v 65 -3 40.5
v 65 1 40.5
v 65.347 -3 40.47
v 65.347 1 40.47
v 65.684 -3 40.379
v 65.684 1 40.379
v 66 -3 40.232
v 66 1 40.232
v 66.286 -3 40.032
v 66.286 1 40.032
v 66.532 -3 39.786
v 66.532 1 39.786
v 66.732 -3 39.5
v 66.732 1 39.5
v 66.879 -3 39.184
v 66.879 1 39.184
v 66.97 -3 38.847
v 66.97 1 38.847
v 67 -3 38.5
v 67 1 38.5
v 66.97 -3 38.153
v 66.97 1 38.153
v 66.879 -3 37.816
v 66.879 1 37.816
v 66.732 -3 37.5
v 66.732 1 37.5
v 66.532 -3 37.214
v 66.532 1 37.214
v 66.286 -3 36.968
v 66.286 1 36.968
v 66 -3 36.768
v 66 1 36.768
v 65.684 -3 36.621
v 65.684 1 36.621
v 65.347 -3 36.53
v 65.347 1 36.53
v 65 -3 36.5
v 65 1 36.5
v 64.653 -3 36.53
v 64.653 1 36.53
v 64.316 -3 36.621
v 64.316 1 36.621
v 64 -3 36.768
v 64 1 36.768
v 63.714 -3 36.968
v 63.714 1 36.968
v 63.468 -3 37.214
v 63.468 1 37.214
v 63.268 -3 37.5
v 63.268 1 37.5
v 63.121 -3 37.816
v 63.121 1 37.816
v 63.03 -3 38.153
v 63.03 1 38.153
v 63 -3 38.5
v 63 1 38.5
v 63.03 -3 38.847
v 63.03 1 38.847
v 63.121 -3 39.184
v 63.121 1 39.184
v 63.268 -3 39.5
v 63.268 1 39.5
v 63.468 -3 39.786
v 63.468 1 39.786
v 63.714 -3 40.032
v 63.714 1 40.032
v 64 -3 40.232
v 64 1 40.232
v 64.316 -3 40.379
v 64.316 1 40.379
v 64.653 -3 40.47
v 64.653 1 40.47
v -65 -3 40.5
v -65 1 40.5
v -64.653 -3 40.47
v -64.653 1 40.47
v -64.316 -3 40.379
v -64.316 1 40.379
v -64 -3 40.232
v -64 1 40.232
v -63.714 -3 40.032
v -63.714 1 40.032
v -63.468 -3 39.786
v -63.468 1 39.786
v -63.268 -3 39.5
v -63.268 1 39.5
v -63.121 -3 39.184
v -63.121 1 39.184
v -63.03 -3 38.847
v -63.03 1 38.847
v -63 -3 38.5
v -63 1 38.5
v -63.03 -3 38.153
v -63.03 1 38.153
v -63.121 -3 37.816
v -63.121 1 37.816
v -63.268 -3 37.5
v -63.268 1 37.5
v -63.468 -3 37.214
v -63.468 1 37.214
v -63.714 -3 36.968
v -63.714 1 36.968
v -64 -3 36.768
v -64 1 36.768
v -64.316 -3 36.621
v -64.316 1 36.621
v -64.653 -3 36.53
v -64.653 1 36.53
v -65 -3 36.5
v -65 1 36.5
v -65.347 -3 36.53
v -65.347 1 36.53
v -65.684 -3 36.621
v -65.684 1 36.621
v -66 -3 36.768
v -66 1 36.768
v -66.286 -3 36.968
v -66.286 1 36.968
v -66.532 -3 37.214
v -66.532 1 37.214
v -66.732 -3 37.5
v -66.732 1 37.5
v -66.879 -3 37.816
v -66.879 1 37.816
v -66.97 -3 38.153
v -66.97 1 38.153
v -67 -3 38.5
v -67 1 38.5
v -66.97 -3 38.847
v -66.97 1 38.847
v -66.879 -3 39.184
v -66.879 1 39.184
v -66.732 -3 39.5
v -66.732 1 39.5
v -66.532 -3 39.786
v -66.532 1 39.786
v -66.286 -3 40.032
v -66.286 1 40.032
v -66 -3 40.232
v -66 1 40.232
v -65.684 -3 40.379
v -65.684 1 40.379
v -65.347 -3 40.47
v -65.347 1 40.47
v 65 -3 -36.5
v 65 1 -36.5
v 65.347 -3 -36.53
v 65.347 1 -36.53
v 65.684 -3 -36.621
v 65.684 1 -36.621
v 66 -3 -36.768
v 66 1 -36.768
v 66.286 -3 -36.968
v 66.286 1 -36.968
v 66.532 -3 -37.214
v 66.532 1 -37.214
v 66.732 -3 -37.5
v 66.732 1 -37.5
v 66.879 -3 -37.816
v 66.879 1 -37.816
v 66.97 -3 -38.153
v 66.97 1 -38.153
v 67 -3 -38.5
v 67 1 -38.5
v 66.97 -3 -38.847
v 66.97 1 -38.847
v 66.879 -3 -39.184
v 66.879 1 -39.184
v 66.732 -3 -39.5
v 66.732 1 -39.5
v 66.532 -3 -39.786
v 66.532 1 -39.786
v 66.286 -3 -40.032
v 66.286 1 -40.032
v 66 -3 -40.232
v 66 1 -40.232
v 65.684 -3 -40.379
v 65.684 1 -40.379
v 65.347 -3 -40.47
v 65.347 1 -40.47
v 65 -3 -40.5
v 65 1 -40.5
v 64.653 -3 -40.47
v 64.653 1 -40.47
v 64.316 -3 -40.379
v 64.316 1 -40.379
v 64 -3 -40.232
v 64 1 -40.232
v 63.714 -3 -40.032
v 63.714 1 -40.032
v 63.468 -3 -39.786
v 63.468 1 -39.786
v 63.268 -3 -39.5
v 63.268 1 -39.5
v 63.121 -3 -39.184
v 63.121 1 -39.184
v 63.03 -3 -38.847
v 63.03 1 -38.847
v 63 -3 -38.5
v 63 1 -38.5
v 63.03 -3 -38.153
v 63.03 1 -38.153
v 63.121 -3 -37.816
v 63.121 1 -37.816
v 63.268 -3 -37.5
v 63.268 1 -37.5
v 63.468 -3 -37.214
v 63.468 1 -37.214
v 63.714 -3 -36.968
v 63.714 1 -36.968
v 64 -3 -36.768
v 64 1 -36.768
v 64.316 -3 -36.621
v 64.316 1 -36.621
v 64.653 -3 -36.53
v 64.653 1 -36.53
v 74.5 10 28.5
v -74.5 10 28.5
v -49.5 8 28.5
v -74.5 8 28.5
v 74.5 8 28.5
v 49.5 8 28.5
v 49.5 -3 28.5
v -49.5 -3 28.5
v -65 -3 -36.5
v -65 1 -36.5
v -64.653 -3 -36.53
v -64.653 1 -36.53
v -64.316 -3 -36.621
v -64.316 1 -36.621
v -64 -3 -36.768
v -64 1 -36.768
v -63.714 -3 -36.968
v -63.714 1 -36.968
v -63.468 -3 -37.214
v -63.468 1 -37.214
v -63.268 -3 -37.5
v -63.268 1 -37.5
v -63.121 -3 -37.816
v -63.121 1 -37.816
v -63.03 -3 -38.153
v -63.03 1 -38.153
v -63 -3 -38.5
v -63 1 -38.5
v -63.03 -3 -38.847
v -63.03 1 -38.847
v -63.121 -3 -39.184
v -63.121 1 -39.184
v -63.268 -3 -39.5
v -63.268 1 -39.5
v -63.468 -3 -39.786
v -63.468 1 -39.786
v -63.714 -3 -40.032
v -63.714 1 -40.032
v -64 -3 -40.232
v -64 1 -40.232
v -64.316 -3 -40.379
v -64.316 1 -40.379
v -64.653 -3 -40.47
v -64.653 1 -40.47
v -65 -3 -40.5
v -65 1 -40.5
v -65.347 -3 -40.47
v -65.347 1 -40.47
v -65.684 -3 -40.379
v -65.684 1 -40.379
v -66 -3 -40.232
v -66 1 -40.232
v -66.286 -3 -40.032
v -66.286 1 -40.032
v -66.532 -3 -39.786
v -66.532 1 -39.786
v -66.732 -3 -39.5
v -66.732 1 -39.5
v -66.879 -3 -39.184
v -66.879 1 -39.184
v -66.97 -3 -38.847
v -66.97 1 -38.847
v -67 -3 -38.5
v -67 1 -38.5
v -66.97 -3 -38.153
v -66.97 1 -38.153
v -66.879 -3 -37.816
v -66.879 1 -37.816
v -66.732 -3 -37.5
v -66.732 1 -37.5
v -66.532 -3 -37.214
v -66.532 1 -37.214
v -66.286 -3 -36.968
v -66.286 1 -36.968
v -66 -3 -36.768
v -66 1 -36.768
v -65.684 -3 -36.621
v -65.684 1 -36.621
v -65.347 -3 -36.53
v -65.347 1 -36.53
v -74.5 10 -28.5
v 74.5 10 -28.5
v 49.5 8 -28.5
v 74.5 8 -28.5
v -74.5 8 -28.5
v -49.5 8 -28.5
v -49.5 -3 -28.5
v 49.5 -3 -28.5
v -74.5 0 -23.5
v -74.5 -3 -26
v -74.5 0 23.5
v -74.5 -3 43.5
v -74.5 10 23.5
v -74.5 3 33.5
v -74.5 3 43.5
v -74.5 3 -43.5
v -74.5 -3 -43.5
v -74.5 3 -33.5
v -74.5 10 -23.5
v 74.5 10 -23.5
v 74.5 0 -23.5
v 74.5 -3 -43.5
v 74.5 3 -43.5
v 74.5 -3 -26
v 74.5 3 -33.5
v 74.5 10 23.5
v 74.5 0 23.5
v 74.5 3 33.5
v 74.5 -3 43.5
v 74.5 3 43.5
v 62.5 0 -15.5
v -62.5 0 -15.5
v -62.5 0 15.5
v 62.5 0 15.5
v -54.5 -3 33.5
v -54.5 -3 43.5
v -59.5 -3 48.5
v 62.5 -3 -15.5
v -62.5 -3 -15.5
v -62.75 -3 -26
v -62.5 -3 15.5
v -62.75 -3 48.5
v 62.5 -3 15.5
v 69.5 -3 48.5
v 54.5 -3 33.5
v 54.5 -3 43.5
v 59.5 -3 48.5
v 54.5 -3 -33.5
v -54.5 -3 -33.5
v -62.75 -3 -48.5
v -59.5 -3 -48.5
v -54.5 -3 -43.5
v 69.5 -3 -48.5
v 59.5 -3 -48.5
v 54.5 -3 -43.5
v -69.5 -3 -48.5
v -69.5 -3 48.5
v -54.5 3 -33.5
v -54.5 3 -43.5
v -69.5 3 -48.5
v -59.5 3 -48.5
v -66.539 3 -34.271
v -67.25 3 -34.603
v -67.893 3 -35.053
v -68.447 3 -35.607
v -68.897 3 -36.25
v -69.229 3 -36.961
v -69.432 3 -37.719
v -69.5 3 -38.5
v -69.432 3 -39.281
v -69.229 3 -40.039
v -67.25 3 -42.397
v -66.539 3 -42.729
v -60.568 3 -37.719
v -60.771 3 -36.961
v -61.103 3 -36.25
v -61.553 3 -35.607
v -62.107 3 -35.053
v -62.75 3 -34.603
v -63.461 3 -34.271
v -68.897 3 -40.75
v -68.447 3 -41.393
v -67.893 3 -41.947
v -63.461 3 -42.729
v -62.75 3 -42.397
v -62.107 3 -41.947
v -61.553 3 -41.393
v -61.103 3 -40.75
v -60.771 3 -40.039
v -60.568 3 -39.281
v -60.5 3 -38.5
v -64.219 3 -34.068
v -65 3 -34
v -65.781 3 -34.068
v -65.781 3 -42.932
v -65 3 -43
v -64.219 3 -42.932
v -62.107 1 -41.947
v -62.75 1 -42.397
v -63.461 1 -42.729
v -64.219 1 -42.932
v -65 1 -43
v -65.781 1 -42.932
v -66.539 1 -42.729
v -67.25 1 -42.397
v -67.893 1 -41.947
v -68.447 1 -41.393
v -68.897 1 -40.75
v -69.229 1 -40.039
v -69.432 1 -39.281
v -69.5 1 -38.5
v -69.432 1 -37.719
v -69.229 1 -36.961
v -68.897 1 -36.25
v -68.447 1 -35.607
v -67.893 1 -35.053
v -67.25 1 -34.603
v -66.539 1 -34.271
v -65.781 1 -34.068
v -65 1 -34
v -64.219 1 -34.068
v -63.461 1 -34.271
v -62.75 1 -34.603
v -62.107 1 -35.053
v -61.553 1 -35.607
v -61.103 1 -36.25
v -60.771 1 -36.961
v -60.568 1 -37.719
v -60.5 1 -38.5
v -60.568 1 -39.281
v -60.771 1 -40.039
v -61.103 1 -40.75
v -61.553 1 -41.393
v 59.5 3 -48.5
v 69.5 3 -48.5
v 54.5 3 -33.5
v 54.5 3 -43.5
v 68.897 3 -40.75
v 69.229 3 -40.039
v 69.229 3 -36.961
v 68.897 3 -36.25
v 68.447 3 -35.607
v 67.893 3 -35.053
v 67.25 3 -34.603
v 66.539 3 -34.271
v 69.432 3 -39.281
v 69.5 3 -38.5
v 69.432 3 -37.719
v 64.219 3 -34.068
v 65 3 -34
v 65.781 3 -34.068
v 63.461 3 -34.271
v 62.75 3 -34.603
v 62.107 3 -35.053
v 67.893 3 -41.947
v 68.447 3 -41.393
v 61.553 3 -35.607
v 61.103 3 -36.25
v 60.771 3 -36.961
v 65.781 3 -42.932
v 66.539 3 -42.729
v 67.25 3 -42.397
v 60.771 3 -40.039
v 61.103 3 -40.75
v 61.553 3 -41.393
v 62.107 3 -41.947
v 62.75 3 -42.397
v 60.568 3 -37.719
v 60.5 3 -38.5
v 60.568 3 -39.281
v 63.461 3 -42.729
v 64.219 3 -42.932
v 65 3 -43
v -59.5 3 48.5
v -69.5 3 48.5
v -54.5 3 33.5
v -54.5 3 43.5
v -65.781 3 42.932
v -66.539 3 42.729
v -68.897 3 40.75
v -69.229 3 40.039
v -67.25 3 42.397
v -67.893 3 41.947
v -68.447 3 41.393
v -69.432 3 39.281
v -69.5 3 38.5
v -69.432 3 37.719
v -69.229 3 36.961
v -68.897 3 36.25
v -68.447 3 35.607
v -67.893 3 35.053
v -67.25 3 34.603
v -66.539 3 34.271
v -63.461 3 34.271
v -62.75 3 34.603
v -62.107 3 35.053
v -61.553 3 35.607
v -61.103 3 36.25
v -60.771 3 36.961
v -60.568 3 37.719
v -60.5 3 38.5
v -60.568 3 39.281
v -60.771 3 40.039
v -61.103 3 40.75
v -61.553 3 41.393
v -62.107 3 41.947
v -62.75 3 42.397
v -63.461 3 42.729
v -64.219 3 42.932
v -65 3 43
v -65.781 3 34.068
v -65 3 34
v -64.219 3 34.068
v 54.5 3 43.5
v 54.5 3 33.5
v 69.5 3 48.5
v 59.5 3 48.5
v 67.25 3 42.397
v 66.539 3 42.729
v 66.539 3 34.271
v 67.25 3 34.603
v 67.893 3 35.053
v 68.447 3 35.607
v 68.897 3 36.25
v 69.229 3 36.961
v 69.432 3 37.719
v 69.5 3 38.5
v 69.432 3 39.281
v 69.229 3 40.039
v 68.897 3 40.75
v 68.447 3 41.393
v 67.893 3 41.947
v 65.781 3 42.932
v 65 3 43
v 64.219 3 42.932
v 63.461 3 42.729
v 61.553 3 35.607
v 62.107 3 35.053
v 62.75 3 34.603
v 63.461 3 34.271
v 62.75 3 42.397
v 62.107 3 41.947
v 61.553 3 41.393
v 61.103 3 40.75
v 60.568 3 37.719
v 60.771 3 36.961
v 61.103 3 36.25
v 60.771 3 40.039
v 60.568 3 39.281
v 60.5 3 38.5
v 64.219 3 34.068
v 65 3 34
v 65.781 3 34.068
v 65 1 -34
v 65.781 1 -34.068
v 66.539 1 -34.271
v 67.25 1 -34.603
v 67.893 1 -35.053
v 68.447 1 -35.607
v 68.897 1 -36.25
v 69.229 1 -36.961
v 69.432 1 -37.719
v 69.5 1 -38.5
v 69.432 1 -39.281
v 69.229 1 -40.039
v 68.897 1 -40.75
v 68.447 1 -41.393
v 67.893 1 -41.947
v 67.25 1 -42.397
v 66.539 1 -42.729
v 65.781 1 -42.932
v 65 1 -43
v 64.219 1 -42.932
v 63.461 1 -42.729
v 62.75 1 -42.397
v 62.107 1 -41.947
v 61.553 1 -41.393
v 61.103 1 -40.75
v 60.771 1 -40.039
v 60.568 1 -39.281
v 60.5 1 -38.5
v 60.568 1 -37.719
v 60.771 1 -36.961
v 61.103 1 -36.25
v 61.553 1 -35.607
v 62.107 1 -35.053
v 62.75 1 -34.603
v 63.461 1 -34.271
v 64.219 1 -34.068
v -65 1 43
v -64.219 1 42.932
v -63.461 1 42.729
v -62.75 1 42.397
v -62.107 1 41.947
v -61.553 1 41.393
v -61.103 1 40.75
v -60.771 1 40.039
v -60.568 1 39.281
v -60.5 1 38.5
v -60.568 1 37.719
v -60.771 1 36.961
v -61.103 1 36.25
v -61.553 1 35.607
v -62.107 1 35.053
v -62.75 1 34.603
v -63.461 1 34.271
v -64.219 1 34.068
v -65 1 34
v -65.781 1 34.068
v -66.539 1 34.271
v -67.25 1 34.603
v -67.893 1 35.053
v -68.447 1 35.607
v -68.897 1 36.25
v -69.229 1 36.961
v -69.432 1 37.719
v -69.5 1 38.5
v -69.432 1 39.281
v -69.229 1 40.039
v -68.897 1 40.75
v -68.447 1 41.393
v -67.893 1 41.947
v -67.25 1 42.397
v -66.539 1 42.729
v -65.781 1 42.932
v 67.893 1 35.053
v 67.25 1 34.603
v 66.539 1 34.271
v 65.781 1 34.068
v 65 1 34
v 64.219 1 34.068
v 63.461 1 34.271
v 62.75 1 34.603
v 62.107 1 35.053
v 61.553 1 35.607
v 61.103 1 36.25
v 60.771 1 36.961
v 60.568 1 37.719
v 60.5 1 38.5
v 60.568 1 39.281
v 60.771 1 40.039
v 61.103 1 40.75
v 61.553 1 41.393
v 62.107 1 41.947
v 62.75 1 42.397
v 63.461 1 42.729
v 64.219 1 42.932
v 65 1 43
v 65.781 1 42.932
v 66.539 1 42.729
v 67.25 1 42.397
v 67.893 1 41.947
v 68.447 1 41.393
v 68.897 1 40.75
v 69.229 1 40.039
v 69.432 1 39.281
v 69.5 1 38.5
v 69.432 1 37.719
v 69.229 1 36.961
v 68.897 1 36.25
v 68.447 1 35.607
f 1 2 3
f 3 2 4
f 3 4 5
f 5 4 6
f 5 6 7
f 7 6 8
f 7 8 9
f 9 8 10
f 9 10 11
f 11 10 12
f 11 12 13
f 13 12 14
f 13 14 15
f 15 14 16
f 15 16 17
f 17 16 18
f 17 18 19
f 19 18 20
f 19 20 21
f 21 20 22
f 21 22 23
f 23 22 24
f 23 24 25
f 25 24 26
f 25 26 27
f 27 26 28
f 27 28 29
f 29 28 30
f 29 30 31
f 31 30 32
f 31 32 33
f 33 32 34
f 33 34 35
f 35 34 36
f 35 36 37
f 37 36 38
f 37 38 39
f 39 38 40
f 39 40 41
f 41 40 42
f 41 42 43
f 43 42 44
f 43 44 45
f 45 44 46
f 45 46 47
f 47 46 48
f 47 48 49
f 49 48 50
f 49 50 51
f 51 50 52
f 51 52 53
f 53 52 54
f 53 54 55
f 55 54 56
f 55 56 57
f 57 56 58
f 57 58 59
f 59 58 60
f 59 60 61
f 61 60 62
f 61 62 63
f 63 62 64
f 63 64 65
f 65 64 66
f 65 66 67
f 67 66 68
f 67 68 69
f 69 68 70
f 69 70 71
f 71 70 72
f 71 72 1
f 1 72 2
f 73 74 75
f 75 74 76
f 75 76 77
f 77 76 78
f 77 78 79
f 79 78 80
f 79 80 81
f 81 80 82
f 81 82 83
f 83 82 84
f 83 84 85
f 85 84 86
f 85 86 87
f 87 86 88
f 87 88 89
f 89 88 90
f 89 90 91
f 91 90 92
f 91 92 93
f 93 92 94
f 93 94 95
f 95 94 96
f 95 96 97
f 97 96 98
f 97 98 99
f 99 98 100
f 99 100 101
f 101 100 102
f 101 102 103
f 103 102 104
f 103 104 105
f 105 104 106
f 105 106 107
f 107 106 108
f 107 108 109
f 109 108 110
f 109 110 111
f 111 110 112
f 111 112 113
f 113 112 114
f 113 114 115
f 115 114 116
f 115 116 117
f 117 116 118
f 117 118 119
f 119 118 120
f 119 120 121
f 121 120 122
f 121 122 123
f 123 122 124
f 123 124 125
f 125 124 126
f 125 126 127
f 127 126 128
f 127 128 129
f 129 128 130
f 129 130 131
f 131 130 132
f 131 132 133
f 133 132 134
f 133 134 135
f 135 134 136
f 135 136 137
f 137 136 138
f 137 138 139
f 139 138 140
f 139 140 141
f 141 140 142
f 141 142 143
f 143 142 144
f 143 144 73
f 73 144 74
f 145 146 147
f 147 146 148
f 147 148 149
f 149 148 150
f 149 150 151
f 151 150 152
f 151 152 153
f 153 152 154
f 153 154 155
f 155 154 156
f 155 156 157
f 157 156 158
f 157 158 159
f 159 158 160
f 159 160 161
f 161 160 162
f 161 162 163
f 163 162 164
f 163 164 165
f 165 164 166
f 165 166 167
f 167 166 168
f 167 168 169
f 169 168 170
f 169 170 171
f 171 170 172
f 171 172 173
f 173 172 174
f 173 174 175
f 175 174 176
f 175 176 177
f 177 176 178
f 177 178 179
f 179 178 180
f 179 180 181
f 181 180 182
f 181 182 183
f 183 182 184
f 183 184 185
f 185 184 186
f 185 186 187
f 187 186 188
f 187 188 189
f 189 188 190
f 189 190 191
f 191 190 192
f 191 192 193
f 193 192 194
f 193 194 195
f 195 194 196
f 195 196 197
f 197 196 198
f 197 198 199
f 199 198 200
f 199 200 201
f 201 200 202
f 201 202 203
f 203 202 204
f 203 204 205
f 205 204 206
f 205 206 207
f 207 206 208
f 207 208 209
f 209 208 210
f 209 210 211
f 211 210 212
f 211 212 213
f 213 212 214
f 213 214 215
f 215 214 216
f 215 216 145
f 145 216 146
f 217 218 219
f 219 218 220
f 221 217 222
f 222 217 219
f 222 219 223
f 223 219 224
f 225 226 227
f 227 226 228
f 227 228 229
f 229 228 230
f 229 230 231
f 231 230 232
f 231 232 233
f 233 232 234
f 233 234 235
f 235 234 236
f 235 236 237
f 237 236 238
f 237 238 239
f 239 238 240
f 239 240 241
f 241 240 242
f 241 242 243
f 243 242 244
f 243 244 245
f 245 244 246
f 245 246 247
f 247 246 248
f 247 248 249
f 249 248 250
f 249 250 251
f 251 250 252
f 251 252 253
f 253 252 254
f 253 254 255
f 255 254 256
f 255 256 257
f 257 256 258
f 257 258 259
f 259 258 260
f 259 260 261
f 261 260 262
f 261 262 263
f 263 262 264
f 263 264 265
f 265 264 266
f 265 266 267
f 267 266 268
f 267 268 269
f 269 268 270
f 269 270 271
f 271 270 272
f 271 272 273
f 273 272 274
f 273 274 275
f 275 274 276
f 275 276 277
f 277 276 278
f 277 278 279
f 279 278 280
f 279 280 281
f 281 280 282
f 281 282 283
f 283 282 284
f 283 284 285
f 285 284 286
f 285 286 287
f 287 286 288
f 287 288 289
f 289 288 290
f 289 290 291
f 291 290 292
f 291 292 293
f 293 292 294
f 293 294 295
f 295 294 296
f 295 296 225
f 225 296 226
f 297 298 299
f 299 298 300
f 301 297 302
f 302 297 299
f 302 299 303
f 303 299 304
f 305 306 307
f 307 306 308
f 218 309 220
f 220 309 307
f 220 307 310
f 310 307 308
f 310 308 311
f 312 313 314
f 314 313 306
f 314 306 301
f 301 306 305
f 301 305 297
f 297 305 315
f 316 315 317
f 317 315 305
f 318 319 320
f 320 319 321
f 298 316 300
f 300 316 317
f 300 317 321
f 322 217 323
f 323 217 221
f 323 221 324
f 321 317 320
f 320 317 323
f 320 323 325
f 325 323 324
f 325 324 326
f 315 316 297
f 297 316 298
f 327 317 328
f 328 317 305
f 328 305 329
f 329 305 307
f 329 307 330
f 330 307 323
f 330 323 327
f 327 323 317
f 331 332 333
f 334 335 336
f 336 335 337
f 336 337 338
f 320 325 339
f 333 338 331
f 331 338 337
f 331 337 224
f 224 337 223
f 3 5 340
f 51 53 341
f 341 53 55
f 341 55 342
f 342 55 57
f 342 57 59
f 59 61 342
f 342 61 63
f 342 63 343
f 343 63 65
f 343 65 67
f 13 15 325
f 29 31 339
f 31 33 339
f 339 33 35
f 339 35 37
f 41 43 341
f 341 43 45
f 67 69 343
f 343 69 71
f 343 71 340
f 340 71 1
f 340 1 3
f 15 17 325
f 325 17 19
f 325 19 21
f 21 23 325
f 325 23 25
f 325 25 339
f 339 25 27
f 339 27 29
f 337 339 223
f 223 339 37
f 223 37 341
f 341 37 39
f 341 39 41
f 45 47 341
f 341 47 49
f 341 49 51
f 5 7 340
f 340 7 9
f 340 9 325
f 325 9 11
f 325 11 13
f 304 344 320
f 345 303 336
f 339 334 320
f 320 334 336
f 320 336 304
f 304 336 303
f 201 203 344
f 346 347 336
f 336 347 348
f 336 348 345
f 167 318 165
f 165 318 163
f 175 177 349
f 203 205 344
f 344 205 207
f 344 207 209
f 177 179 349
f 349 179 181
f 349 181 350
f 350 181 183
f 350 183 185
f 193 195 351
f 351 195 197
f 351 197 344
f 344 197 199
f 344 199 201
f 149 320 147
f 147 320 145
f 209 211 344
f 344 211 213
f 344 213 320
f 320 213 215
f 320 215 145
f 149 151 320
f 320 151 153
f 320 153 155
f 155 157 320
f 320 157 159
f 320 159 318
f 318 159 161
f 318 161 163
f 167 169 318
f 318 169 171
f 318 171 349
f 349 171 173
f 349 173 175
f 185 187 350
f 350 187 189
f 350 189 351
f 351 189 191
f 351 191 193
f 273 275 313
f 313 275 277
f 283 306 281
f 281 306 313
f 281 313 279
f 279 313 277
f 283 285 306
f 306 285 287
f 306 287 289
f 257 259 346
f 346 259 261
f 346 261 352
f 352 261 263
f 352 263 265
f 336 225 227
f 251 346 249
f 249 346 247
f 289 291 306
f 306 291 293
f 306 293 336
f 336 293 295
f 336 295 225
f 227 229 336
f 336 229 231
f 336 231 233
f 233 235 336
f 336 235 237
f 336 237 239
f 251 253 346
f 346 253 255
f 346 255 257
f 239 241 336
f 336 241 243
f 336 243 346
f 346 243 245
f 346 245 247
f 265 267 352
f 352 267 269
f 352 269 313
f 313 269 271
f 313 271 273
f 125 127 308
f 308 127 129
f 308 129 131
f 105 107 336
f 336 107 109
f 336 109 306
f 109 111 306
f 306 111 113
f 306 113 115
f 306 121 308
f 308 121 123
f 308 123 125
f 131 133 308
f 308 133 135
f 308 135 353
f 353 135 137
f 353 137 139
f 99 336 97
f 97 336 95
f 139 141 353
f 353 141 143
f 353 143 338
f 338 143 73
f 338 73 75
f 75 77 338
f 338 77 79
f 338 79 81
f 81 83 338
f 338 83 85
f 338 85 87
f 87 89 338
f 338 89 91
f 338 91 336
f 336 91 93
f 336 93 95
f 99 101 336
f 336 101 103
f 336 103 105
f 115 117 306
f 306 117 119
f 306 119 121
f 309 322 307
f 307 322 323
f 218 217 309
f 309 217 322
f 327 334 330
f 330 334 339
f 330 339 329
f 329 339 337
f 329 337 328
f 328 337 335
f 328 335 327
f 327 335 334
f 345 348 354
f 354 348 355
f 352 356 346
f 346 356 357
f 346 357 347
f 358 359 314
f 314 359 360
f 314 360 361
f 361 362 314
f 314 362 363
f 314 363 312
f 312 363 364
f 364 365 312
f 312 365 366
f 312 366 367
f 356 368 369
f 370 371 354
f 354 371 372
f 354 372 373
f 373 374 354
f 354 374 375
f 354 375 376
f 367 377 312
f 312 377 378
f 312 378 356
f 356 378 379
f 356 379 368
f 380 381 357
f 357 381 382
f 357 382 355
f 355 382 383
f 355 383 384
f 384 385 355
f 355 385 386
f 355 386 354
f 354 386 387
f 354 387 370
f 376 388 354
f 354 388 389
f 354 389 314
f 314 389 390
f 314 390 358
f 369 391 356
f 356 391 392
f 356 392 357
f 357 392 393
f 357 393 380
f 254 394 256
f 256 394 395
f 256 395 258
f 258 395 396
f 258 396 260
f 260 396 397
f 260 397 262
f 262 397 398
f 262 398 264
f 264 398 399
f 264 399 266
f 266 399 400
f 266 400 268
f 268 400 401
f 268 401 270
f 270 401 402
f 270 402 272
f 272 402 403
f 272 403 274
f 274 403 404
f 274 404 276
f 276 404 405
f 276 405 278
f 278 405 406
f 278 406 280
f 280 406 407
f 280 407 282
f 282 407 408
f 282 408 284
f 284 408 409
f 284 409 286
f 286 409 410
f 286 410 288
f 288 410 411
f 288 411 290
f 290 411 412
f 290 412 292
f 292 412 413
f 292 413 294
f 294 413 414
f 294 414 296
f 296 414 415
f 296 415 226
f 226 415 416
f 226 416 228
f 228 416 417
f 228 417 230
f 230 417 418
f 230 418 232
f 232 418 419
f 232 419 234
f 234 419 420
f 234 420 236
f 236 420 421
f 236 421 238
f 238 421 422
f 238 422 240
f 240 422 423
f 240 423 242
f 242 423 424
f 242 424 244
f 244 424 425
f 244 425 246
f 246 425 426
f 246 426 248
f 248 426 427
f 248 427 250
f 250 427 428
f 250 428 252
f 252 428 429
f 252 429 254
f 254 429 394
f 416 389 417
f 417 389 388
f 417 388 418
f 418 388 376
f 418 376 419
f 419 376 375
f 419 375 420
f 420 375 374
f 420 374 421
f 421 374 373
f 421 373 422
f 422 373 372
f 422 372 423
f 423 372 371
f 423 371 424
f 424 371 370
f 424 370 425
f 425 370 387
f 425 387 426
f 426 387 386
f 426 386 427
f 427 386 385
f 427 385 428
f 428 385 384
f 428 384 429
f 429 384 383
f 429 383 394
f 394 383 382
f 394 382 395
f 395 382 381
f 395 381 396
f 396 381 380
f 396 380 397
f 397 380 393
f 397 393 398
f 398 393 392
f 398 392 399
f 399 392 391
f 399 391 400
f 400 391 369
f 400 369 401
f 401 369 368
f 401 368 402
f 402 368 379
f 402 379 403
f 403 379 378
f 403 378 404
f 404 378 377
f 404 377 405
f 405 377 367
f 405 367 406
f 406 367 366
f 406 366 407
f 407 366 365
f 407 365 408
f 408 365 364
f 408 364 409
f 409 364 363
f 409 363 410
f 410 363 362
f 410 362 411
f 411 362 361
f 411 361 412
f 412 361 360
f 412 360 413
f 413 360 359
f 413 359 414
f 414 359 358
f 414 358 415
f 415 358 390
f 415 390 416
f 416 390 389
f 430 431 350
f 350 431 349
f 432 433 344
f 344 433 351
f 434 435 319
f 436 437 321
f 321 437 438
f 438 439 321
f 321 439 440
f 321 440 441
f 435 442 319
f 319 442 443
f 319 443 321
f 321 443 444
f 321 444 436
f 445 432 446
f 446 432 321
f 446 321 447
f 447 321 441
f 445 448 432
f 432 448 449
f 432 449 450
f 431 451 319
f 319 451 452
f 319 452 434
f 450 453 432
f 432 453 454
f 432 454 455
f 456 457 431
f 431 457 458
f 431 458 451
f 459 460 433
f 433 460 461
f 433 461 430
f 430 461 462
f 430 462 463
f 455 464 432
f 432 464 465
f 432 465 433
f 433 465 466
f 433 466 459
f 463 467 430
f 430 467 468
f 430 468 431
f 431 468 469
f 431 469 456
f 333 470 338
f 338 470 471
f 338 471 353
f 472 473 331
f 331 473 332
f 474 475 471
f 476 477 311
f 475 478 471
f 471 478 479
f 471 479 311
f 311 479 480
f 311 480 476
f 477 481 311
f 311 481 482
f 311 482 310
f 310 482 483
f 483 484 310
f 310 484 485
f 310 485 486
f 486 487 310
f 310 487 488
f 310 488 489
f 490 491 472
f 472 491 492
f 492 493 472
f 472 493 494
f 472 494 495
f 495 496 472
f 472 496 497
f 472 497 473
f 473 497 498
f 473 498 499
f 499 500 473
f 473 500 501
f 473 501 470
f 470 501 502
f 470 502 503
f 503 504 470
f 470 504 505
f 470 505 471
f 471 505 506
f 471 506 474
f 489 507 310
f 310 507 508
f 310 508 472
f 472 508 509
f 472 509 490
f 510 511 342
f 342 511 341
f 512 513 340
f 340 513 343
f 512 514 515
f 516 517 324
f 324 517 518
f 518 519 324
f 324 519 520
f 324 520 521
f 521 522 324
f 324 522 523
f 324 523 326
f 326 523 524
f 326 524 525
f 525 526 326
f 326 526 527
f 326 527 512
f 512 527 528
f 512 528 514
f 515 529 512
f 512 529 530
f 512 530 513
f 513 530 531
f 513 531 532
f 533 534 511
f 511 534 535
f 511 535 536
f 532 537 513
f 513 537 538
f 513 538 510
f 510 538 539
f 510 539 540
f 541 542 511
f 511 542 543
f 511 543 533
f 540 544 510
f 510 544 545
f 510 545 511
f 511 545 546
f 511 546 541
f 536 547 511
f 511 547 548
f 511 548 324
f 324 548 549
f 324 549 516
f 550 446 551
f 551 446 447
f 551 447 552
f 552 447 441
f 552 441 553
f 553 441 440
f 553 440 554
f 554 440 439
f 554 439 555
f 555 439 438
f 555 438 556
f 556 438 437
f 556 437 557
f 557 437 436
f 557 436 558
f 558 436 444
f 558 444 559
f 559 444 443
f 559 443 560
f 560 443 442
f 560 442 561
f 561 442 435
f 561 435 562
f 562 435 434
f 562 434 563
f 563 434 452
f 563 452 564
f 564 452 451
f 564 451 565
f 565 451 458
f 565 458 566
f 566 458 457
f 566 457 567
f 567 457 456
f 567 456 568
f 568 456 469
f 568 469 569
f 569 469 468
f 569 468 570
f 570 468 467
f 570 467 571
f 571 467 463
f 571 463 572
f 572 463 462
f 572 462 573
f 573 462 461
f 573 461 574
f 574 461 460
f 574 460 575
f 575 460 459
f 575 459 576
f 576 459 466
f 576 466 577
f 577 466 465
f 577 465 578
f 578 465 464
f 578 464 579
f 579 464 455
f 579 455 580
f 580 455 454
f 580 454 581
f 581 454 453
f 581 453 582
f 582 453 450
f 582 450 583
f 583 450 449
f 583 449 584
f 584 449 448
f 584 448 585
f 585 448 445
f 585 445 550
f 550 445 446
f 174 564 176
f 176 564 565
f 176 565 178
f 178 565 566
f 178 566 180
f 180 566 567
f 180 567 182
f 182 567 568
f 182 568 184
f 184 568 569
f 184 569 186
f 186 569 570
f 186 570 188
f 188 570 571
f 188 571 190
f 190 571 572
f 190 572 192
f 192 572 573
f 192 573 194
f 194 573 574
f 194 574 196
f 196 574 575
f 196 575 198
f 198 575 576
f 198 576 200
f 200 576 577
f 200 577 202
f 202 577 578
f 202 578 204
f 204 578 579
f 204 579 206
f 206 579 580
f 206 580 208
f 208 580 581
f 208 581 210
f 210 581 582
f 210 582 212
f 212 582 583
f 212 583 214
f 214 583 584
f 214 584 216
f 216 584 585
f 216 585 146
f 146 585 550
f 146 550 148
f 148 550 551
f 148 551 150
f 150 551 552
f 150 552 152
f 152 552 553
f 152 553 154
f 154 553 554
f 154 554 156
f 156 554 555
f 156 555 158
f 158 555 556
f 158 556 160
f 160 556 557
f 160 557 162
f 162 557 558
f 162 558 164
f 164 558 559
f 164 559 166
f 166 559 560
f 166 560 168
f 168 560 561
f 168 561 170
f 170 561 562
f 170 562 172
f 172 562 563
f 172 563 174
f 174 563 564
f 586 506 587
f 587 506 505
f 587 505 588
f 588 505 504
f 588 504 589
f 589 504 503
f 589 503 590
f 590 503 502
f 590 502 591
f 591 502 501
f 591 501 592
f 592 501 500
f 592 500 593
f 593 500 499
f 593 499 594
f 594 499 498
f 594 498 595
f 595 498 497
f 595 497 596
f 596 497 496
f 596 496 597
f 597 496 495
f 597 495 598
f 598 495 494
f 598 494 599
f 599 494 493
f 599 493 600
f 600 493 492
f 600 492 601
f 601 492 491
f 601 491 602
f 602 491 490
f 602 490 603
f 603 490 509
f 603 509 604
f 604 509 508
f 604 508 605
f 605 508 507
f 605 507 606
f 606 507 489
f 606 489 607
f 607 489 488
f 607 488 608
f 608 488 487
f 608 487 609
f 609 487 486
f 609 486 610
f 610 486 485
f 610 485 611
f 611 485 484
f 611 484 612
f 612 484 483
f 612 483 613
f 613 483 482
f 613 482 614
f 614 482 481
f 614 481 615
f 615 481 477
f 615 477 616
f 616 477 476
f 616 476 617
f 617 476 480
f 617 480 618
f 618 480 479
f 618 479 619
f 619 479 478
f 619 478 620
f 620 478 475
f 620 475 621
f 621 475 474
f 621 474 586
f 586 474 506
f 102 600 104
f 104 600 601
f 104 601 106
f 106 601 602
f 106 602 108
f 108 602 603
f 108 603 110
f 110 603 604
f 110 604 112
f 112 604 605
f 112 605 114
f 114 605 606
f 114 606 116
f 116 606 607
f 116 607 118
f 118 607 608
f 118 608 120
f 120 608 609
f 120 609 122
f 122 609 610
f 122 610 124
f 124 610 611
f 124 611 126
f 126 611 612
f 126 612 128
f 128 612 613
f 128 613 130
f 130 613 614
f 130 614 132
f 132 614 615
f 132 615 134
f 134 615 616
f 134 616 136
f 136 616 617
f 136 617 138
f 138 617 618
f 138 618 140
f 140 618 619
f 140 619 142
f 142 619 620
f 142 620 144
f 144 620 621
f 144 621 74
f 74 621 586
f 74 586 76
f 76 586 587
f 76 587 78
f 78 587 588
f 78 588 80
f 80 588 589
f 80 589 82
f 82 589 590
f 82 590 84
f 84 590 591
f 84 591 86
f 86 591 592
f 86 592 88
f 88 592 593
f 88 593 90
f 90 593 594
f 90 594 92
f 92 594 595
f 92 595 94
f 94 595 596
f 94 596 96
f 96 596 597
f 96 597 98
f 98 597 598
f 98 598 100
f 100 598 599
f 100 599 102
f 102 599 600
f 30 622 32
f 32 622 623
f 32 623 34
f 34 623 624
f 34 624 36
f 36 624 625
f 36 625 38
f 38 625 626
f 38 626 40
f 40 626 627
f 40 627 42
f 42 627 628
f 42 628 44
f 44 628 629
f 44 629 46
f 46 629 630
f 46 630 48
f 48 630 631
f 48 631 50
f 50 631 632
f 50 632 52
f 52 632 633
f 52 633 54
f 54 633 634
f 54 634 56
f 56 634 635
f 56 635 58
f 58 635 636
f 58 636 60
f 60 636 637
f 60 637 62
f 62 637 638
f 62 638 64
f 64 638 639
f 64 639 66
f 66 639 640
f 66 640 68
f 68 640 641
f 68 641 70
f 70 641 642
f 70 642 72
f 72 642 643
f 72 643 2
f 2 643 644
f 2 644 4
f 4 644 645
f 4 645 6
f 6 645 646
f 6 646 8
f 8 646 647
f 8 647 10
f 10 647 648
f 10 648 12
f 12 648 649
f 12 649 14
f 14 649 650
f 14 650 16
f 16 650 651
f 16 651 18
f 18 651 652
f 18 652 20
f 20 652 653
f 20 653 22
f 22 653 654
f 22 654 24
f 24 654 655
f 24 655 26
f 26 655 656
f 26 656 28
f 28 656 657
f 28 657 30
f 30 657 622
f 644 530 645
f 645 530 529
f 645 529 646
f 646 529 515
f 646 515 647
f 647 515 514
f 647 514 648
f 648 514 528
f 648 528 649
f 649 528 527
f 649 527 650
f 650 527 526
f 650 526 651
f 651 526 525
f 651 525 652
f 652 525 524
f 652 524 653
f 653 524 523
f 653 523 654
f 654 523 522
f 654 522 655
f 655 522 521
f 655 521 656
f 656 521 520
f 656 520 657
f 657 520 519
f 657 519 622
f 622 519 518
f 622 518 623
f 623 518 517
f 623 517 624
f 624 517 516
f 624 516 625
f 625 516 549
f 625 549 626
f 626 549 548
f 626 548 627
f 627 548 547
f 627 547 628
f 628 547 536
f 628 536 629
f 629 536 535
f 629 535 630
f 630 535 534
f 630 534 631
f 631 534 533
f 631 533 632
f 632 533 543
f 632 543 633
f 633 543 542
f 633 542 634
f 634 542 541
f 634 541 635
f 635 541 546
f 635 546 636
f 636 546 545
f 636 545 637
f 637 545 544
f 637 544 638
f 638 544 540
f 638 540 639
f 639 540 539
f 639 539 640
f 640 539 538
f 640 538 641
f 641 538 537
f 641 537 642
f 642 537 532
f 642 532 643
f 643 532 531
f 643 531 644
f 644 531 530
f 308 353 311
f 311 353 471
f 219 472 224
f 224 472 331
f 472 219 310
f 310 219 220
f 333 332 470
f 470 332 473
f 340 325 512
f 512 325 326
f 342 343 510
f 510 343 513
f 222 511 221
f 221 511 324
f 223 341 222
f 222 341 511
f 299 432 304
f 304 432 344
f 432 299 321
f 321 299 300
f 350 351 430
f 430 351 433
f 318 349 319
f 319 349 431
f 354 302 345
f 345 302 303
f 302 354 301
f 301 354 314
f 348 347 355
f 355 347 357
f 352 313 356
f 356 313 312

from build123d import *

# Parameters (mm, degrees)
BOSS_EXTRUDE1_DEPTH                        = 10
BOSS_EXTRUDE1_2_DEPTH                      = 10
SKETCH2_W                                  = 149
SKETCH2_H                                  = 57
BOSS_EXTRUDE2_DEPTH                        = 3
SKETCH3_W                                  = 125
SKETCH3_H                                  = 31
CUT_EXTRUDE1_DEPTH                         = 20
SKETCH4_W                                  = 20
SKETCH4_H                                  = 20
BOSS_EXTRUDE3_DEPTH                        = 3
SKETCH5_R                                  = 2
CUT_EXTRUDE2_DEPTH                         = 20
SKETCH6_R                                  = 4.5
CUT_EXTRUDE3_DEPTH                         = 2
MIRROR5_AT_THE_SECOND_PLANE_COPY_1_SKETC_W = 20
MIRROR5_AT_THE_SECOND_PLANE_COPY_1_SKETC_H = 20
MIRROR5_AT_THE_SECOND_PLANE_COPY_1_DEPTH   = 3
MIRROR5_AT_THE_SECOND_PLANE_COPY_2_SKETC_R = 2
MIRROR5_AT_THE_SECOND_PLANE_COPY_2_DEPTH   = 20
MIRROR5_AT_THE_SECOND_PLANE_COPY_3_SKETC_R = 4.5
MIRROR5_AT_THE_SECOND_PLANE_COPY_3_DEPTH   = 2
CHAMFER1_SIZE                              = 5


with BuildPart() as part:
    # Sketch1 → Boss-Extrude1 (new body)
    with BuildSketch(Plane(origin=(0, 0, 0), x_dir=(1, 0, 0), z_dir=(0, 1, 0))):
        Polygon((74.5, 28.5), (-74.5, 28.5), (-74.5, 23.5), (-69.5, 23.5), (69.5, 23.5), (74.5, 23.5), align=None)
    extrude(amount=BOSS_EXTRUDE1_DEPTH)



with BuildPart() as body_2:
    # Sketch1 → Boss-Extrude1 2 (new body)
    with BuildSketch(Plane(origin=(0, 0, 0), x_dir=(1, 0, 0), z_dir=(0, 1, 0))):
        Polygon((-69.5, -23.5), (-74.5, -23.5), (-74.5, -28.5), (74.5, -28.5), (74.5, -23.5), (69.5, -23.5), align=None)
    extrude(amount=BOSS_EXTRUDE1_2_DEPTH)


with BuildPart() as part_1:
    add(part.part)

    add(body_2.part)  # Boss-Extrude2 merges body 2
    # Sketch2 → Boss-Extrude2 (add)
    with BuildSketch(Plane.XZ):
        Rectangle(SKETCH2_W, SKETCH2_H)
    extrude(amount=BOSS_EXTRUDE2_DEPTH)

    # Sketch3 → Cut-Extrude1 (cut)
    with BuildSketch(Plane(origin=(0, 0, 0), x_dir=(1, 0, 0), z_dir=(0, 1, 0))):
        Rectangle(SKETCH3_W, SKETCH3_H)
    extrude(amount=-CUT_EXTRUDE1_DEPTH, mode=Mode.SUBTRACT)

    # Sketch4 → Boss-Extrude3 (add, symmetric)
    with BuildSketch(Plane(origin=(0, 0, 0), x_dir=(1, 0, 0), z_dir=(0, 1, 0))):
        with Locations((-64.5, 38.5)):
            Rectangle(SKETCH4_W, SKETCH4_H)
    boss_extrude3 = extrude(amount=BOSS_EXTRUDE3_DEPTH, both=True)

    # Sketch5 → Cut-Extrude2 (cut)
    with BuildSketch(Plane(origin=(0, 3, 0), x_dir=(1, 0, 0), z_dir=(0, 1, 0))):
        with Locations((-65, 38.5)):
            Circle(SKETCH5_R)
    cut_extrude2 = extrude(amount=-CUT_EXTRUDE2_DEPTH, mode=Mode.SUBTRACT)

    # Sketch6 → Cut-Extrude3 (cut)
    with BuildSketch(Plane(origin=(0, 3, 0), x_dir=(1, 0, 0), z_dir=(0, 1, 0))):
        with Locations((-65, 38.5)):
            Circle(SKETCH6_R)
    cut_extrude3 = extrude(amount=-CUT_EXTRUDE3_DEPTH, mode=Mode.SUBTRACT)

    # Mirror5: Boss-Extrude3, Cut-Extrude2, Cut-Extrude3 across plane
    add(boss_extrude3.mirror(Plane.XY))
    add(cut_extrude2.mirror(Plane.XY), mode=Mode.SUBTRACT)
    add(cut_extrude3.mirror(Plane.XY), mode=Mode.SUBTRACT)

    # Mirror5 at the second plane: Boss-Extrude3, Cut-Extrude3, Cut-Extrude2 across plane
    add(boss_extrude3.mirror(Plane(origin=(0, 0, 0), x_dir=(0, 0, 1), z_dir=(1, 0, 0))))
    add(cut_extrude3.mirror(Plane(origin=(0, 0, 0), x_dir=(0, 0, 1), z_dir=(1, 0, 0))), mode=Mode.SUBTRACT)
    add(cut_extrude2.mirror(Plane(origin=(0, 0, 0), x_dir=(0, 0, 1), z_dir=(1, 0, 0))), mode=Mode.SUBTRACT)

    # Mirror5 at the second plane copy 1 sketc → Mirror5 at the second plane copy 1 (add, symmetric)
    with BuildSketch(Plane(origin=(0, 0, 0), x_dir=(-1, 0, 0), z_dir=(0, 1, 0))):
        with Locations((-64.5, 38.5)):
            Rectangle(MIRROR5_AT_THE_SECOND_PLANE_COPY_1_SKETC_W, MIRROR5_AT_THE_SECOND_PLANE_COPY_1_SKETC_H)
    extrude(amount=MIRROR5_AT_THE_SECOND_PLANE_COPY_1_DEPTH, both=True)

    # Mirror5 at the second plane copy 2 sketc → Mirror5 at the second plane copy 2 (cut)
    with BuildSketch(Plane(origin=(0, 3, 0), x_dir=(-1, 0, 0), z_dir=(0, 1, 0))):
        with Locations((-65, 38.5)):
            Circle(MIRROR5_AT_THE_SECOND_PLANE_COPY_2_SKETC_R)
    extrude(amount=-MIRROR5_AT_THE_SECOND_PLANE_COPY_2_DEPTH, mode=Mode.SUBTRACT)

    # Mirror5 at the second plane copy 3 sketc → Mirror5 at the second plane copy 3 (cut)
    with BuildSketch(Plane(origin=(0, 3, 0), x_dir=(-1, 0, 0), z_dir=(0, 1, 0))):
        with Locations((-65, 38.5)):
            Circle(MIRROR5_AT_THE_SECOND_PLANE_COPY_3_SKETC_R)
    extrude(amount=-MIRROR5_AT_THE_SECOND_PLANE_COPY_3_DEPTH, mode=Mode.SUBTRACT)

    # Chamfer1
    chamfer1_edges = [part_1.edges().sort_by_distance(p)[0] for p in [
        (74.5, 0, 48.5),
        (54.5, 0, 28.5),
        (54.5, 0, 48.5),
        (64.5, 3, 28.5),
        (-74.5, 0, -48.5),
        (-54.5, 0, -28.5),
        (-54.5, 0, -48.5),
        (-64.5, 3, -28.5),
        (74.5, 0, -48.5),
        (54.5, 0, -48.5),
        (54.5, 0, -28.5),
        (64.5, 3, -28.5),
        (-74.5, 0, 48.5),
        (-54.5, 0, 48.5),
        (-54.5, 0, 28.5),
        (-64.5, 3, 28.5),
    ]]
    chamfer(chamfer1_edges, length=CHAMFER1_SIZE)


solid = part_1.part
